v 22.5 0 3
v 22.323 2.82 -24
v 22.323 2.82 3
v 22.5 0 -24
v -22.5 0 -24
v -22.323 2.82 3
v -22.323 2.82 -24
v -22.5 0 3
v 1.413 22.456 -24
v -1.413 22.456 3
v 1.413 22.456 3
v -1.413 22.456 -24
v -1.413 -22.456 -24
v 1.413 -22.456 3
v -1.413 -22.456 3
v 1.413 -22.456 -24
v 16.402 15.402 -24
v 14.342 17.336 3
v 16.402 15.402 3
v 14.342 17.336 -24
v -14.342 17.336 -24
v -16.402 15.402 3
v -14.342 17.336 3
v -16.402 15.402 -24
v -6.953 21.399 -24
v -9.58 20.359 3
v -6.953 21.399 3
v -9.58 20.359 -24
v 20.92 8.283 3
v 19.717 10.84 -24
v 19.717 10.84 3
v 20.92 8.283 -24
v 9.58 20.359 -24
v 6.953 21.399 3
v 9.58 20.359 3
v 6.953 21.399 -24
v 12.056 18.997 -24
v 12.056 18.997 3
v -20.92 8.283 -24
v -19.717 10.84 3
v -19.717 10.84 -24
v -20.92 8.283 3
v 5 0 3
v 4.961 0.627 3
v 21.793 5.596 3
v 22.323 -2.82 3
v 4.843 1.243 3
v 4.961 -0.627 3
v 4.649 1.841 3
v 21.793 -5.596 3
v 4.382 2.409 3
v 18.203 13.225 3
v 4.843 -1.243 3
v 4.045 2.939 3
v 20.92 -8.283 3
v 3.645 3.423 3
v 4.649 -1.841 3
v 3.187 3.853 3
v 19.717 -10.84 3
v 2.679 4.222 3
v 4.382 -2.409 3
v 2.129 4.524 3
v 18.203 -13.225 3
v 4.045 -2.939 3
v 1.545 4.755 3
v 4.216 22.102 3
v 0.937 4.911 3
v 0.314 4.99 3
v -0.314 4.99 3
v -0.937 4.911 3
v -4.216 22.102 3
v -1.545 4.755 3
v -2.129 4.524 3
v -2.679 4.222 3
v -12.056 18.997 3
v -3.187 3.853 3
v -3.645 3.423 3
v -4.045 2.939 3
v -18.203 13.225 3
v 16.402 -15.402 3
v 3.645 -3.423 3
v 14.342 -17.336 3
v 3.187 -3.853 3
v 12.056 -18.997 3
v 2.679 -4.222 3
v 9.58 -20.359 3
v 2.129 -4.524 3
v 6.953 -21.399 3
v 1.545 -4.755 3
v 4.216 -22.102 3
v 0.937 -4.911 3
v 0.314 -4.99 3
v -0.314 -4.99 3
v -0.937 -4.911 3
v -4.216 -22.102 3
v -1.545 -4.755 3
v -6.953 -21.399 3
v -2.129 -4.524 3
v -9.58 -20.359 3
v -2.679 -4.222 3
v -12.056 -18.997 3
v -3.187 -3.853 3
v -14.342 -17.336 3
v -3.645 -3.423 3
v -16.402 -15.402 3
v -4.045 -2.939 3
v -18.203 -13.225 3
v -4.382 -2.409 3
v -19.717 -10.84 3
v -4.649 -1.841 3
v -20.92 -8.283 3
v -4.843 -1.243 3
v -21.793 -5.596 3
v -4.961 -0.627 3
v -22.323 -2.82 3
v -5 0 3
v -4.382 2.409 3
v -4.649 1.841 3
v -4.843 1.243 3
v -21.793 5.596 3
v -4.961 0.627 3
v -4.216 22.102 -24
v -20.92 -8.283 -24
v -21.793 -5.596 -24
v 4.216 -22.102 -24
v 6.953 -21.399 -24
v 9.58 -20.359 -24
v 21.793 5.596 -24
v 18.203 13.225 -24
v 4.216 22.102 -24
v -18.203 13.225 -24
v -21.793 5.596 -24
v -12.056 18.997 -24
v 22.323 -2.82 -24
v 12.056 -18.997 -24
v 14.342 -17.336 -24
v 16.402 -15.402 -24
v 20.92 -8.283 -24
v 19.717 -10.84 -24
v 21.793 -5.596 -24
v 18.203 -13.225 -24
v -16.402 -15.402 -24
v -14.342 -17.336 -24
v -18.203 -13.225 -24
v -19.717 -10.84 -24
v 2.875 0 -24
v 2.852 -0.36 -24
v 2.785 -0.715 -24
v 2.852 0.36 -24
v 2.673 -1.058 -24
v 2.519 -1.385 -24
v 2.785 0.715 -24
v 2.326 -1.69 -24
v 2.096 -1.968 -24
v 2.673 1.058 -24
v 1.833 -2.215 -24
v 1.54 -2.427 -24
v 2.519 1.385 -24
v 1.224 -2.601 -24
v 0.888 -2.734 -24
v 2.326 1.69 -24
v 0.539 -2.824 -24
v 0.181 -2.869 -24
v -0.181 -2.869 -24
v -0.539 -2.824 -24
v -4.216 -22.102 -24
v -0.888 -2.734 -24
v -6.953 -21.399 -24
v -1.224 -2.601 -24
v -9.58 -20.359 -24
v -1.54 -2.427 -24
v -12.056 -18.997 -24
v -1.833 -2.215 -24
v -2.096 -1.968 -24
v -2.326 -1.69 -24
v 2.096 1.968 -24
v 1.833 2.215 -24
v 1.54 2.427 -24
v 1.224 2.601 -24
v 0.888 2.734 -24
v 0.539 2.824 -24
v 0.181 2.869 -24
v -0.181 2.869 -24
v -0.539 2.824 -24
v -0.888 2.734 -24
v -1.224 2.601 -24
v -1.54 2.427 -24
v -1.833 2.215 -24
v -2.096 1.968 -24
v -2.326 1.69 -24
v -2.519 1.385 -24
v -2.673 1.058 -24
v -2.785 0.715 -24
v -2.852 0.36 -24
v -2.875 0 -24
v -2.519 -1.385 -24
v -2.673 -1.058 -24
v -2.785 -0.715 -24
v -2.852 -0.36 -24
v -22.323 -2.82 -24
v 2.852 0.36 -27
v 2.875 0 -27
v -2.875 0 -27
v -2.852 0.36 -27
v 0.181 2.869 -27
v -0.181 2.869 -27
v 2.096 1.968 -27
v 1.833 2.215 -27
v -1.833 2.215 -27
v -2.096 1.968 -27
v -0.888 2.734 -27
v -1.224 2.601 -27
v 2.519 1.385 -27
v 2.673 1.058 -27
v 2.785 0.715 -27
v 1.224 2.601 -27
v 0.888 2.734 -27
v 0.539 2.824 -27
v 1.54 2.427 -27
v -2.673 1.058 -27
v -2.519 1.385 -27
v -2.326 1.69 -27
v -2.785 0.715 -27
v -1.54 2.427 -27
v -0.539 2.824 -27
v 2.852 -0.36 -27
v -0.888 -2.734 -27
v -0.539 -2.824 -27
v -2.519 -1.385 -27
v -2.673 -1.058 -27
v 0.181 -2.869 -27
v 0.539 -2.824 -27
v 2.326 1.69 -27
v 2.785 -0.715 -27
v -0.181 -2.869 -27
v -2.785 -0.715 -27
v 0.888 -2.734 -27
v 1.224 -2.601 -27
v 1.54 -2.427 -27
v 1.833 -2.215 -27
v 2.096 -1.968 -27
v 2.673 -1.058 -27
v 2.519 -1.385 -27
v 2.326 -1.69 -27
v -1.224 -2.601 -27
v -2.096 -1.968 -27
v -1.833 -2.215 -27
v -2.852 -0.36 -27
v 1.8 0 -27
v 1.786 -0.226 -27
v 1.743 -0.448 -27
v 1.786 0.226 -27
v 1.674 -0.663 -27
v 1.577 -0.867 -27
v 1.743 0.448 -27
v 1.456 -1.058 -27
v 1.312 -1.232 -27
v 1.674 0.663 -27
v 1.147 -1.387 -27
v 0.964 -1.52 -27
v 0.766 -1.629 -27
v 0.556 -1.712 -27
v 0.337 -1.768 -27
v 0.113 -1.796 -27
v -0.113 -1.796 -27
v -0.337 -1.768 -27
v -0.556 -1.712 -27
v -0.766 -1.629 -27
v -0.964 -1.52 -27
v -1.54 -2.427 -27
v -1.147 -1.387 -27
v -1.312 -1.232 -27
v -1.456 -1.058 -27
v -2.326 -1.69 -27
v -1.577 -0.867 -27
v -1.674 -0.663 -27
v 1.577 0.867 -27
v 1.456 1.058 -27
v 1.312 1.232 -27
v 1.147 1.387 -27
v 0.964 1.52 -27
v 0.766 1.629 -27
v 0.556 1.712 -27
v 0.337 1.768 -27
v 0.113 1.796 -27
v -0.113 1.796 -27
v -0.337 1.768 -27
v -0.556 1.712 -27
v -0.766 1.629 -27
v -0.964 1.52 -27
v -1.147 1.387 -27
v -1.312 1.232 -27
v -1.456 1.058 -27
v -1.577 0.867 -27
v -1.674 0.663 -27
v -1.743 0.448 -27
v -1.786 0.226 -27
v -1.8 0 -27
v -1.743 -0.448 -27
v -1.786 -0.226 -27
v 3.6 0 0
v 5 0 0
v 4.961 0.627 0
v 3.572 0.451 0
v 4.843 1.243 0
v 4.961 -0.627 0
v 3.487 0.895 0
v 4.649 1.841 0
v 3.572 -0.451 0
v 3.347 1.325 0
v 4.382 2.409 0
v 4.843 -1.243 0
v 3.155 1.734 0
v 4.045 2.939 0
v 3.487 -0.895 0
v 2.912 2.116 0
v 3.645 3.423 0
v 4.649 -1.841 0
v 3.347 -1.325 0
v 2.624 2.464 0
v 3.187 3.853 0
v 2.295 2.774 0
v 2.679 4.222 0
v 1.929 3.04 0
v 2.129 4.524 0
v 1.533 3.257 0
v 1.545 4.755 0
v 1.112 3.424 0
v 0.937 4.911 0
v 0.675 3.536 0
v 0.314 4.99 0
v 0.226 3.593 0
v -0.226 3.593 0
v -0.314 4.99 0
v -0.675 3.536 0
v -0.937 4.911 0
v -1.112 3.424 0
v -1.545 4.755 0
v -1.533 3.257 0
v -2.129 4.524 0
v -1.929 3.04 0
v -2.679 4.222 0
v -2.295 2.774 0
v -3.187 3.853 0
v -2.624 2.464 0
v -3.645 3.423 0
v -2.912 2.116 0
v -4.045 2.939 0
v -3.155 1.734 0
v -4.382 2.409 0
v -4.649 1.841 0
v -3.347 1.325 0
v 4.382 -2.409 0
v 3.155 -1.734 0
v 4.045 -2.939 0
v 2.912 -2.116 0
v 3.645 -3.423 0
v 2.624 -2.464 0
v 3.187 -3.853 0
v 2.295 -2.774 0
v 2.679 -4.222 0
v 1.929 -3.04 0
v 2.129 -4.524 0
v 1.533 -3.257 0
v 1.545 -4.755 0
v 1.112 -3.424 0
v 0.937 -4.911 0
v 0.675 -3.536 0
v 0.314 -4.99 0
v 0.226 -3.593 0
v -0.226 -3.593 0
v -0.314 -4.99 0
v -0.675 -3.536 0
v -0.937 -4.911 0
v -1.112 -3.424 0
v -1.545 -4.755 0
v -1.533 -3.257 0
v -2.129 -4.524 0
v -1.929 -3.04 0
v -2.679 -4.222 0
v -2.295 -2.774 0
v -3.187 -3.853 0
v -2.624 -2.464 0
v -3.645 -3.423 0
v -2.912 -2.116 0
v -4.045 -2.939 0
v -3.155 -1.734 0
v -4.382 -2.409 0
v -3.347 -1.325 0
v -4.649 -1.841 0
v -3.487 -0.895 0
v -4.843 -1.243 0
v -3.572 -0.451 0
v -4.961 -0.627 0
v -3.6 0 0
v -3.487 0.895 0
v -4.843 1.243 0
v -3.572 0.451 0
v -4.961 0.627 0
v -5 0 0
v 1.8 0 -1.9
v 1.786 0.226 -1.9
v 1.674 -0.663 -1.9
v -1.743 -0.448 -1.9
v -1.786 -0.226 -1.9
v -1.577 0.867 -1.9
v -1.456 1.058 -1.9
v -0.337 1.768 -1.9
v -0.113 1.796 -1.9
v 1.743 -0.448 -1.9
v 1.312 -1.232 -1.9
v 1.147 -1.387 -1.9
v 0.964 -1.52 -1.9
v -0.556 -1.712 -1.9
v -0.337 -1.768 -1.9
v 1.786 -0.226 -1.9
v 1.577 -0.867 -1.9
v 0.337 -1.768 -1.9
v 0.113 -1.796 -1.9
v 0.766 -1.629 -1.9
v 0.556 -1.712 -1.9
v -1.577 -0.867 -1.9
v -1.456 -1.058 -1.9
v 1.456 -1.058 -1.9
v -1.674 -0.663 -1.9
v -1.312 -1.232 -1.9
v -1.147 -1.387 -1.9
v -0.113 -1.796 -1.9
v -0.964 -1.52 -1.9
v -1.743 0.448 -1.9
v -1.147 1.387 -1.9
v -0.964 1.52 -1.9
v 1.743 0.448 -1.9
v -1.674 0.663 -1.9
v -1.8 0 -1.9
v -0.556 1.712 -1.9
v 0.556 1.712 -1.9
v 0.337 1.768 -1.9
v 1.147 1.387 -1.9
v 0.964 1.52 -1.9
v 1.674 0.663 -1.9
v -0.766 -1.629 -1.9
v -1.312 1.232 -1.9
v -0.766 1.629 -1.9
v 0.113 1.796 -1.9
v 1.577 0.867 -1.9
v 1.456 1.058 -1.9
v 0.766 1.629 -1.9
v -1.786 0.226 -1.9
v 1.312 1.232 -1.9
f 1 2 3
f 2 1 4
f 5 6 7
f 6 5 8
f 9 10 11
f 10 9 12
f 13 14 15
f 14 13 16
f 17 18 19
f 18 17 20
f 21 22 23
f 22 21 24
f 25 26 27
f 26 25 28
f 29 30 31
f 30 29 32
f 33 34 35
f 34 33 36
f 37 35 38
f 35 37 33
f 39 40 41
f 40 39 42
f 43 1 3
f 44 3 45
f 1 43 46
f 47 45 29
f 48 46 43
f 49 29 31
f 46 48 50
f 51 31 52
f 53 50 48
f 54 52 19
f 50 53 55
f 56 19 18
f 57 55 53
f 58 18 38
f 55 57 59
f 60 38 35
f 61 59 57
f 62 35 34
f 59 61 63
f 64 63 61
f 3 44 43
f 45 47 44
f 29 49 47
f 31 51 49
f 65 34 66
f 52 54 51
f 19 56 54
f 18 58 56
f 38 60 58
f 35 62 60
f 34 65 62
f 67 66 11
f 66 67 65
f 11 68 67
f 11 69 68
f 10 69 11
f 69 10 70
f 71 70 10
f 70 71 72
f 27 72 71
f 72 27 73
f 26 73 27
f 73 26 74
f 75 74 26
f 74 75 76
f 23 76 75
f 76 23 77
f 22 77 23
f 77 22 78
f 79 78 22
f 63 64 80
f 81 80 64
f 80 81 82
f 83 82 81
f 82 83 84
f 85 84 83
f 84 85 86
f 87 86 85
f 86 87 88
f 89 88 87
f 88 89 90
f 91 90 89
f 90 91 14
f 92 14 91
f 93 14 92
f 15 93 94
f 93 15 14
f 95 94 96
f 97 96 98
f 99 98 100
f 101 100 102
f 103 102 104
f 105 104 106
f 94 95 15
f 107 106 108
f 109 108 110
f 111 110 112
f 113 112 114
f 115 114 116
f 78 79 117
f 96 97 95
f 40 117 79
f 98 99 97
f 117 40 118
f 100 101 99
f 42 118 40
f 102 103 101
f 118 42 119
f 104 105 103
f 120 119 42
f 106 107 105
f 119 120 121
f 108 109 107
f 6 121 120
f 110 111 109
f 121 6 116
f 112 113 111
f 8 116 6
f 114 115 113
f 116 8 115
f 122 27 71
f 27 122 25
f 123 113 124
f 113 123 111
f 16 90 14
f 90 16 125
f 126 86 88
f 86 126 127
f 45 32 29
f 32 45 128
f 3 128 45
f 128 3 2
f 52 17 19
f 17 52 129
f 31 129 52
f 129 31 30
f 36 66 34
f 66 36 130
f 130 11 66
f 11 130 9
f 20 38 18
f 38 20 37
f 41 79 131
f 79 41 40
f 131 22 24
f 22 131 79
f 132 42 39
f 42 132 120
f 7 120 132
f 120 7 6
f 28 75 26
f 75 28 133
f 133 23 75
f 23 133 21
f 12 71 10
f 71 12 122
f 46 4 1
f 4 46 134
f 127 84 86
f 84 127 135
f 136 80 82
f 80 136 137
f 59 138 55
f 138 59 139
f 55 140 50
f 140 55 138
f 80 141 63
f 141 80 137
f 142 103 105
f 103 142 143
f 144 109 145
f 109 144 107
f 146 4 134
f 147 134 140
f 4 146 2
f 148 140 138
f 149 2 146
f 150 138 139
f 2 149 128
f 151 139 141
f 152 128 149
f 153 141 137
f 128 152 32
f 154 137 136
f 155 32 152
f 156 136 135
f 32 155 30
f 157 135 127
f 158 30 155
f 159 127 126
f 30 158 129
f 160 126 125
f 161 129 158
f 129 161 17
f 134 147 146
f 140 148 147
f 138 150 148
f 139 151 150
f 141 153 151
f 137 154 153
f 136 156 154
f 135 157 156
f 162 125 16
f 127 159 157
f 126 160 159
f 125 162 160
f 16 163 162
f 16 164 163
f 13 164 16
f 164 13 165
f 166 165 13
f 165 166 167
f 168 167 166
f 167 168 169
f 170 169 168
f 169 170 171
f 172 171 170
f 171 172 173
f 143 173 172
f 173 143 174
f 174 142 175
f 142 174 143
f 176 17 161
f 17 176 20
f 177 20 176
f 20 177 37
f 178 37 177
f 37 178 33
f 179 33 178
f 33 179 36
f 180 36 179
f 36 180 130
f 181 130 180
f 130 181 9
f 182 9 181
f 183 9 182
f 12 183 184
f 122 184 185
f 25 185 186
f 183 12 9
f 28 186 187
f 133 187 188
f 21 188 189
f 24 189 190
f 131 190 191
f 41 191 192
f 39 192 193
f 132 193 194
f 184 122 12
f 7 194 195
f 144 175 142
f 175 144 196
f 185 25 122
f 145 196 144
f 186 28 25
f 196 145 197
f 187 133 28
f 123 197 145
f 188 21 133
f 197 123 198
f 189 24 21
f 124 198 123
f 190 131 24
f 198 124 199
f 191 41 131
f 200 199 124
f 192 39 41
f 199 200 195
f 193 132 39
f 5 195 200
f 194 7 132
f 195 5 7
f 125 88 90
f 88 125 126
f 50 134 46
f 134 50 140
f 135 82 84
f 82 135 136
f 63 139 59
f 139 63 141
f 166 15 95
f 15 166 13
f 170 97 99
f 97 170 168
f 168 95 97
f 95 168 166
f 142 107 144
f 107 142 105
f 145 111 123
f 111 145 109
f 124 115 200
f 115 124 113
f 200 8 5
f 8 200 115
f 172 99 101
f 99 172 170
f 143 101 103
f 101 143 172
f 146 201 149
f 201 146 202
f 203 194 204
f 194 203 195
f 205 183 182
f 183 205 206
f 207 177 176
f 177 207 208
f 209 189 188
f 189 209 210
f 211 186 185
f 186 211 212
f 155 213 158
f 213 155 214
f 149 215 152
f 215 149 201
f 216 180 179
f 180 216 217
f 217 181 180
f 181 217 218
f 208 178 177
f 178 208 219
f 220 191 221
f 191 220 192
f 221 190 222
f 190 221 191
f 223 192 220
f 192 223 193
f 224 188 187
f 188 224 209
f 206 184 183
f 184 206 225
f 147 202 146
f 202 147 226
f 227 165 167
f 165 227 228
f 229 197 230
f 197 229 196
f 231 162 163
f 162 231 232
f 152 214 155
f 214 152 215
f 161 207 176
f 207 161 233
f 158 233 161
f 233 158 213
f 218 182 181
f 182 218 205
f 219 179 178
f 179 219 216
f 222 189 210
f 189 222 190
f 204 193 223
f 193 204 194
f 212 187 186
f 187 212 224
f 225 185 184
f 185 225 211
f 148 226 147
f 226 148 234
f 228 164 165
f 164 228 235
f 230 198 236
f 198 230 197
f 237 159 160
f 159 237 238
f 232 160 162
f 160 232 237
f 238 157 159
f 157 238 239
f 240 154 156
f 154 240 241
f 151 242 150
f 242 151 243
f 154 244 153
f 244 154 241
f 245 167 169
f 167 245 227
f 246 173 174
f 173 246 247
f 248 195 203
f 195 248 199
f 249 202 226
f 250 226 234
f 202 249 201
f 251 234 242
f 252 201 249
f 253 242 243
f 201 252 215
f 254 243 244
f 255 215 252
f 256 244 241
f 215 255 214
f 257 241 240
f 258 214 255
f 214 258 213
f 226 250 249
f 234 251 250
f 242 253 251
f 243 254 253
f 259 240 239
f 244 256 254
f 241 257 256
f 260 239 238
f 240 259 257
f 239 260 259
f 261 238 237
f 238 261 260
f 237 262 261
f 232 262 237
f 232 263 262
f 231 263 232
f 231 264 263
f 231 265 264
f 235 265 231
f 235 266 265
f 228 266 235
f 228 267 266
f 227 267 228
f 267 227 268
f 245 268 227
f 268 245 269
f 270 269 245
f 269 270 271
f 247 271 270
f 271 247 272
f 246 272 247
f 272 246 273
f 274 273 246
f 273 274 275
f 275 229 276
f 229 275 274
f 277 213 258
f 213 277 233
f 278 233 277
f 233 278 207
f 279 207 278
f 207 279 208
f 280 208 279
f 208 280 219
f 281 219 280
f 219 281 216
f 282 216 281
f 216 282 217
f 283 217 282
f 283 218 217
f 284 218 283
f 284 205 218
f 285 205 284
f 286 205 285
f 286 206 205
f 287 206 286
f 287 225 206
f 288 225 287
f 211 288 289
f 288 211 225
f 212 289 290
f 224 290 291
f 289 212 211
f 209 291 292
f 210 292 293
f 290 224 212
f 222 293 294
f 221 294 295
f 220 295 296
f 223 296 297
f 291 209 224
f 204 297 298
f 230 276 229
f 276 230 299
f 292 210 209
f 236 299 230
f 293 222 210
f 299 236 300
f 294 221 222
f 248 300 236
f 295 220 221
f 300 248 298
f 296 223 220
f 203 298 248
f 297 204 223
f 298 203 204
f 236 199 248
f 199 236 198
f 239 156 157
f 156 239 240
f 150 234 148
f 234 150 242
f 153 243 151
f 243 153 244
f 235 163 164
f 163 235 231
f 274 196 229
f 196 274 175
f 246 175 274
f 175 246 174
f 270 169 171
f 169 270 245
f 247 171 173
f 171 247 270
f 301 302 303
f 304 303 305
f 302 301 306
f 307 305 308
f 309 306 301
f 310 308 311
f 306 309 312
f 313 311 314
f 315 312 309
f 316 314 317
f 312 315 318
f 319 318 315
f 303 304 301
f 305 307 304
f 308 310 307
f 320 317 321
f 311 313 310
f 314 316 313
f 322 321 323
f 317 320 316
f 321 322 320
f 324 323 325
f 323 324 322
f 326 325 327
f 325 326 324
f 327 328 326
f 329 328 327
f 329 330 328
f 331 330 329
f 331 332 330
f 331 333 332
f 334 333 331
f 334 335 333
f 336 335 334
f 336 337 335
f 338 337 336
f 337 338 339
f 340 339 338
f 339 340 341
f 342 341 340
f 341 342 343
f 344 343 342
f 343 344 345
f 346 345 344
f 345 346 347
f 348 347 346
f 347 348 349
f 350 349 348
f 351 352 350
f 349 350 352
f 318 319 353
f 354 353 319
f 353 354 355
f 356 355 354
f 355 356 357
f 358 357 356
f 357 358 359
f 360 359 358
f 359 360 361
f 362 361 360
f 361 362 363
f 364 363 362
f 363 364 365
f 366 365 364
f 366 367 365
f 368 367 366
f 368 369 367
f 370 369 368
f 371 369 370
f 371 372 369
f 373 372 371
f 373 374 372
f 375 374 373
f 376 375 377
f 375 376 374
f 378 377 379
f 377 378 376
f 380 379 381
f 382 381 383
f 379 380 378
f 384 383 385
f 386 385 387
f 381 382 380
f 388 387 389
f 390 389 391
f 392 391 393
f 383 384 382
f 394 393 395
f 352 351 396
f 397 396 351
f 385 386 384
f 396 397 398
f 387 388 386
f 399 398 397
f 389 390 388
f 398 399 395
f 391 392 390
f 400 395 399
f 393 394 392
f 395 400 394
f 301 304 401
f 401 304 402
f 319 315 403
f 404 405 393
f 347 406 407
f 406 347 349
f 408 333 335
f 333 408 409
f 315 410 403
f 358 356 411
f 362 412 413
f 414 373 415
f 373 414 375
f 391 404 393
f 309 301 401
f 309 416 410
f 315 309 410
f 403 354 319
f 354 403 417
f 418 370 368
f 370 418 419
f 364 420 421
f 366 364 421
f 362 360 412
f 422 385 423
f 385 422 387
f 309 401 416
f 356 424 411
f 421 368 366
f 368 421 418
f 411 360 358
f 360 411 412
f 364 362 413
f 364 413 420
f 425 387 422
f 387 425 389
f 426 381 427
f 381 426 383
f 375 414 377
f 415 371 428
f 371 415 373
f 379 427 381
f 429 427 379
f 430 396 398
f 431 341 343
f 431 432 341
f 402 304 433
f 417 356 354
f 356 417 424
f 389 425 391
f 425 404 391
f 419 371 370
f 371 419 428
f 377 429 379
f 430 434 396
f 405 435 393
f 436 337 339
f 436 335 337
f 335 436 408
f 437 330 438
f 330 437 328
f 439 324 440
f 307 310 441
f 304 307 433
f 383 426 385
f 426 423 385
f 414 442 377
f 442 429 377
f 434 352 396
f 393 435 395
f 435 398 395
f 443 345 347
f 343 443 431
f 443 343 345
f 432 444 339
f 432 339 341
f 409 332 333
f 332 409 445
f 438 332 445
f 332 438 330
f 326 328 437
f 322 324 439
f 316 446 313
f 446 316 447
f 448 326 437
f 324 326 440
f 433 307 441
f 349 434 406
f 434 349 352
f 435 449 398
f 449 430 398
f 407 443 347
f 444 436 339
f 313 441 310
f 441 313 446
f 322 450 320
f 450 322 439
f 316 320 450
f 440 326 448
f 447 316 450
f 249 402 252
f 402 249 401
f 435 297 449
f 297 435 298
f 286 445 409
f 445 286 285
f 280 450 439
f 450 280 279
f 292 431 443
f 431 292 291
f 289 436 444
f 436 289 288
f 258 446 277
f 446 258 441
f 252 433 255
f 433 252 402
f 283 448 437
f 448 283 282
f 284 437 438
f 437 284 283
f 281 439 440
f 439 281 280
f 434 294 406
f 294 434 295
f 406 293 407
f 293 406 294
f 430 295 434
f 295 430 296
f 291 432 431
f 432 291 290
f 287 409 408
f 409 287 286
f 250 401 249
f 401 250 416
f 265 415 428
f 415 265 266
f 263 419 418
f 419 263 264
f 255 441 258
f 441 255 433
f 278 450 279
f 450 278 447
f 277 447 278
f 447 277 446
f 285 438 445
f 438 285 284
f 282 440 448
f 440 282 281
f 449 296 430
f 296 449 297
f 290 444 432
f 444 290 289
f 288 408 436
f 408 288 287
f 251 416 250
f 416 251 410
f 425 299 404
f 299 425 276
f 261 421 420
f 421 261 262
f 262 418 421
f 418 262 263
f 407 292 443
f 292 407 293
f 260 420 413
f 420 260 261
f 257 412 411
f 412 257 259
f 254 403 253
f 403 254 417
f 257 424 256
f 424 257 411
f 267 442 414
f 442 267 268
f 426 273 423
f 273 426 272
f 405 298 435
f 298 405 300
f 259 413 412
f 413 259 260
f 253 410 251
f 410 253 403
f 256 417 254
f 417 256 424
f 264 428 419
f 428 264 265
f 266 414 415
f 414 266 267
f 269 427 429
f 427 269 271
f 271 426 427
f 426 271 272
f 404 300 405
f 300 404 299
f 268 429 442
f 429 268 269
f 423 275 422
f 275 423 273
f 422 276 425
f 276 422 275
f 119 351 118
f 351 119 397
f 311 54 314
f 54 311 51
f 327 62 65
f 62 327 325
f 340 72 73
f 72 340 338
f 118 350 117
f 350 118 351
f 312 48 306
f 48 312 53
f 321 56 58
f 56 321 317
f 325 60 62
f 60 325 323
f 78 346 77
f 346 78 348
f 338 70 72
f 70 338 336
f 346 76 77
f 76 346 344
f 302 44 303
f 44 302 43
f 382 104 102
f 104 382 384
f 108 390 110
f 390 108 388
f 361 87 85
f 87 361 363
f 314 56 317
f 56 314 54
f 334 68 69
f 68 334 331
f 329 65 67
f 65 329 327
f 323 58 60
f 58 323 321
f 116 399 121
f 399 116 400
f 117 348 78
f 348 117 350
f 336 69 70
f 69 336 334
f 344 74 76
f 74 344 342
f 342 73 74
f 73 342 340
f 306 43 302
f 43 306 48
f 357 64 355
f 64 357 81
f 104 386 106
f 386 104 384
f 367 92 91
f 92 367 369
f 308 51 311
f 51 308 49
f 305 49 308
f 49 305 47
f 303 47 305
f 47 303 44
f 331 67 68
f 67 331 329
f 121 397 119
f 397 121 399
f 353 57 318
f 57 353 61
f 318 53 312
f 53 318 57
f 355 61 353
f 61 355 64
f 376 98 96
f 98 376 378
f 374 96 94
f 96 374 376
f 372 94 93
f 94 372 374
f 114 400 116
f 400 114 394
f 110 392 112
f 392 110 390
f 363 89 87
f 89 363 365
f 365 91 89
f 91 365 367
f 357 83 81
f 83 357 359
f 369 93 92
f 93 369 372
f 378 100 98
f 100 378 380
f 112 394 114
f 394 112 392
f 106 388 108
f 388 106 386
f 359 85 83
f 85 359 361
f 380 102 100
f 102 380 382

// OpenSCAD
$fn = 50;

difference() {
	union() {
		translate(v = [0, 0, -24.0]) {
			cylinder(h = 27, r = 22.5);
		}
		#translate(v = [0, 0, -27.0]) {
			cylinder(h = 27, r = 2.875);
		}
	}
	union() {
		translate(v = [0, 0, 0]) {
			rotate(a = [0, 0, 0]) {
				difference() {
					union() {
						translate(v = [0, 0, -27.0]) {
							cylinder(h = 27, r = 1.5);
						}
						translate(v = [0, 0, -1.9]) {
							cylinder(h = 1.9, r1 = 1.8, r2 = 3.6);
						}
						translate(v = [0, 0, -27.0]) {
							cylinder(h = 27, r = 1.8);
						}
						translate(v = [0, 0, -27.0]) {
							cylinder(h = 27, r = 1.5);
						}
					}
					union();
				}
			}
		}
		#cylinder(h = 3, r = 5.0);
	}
}
